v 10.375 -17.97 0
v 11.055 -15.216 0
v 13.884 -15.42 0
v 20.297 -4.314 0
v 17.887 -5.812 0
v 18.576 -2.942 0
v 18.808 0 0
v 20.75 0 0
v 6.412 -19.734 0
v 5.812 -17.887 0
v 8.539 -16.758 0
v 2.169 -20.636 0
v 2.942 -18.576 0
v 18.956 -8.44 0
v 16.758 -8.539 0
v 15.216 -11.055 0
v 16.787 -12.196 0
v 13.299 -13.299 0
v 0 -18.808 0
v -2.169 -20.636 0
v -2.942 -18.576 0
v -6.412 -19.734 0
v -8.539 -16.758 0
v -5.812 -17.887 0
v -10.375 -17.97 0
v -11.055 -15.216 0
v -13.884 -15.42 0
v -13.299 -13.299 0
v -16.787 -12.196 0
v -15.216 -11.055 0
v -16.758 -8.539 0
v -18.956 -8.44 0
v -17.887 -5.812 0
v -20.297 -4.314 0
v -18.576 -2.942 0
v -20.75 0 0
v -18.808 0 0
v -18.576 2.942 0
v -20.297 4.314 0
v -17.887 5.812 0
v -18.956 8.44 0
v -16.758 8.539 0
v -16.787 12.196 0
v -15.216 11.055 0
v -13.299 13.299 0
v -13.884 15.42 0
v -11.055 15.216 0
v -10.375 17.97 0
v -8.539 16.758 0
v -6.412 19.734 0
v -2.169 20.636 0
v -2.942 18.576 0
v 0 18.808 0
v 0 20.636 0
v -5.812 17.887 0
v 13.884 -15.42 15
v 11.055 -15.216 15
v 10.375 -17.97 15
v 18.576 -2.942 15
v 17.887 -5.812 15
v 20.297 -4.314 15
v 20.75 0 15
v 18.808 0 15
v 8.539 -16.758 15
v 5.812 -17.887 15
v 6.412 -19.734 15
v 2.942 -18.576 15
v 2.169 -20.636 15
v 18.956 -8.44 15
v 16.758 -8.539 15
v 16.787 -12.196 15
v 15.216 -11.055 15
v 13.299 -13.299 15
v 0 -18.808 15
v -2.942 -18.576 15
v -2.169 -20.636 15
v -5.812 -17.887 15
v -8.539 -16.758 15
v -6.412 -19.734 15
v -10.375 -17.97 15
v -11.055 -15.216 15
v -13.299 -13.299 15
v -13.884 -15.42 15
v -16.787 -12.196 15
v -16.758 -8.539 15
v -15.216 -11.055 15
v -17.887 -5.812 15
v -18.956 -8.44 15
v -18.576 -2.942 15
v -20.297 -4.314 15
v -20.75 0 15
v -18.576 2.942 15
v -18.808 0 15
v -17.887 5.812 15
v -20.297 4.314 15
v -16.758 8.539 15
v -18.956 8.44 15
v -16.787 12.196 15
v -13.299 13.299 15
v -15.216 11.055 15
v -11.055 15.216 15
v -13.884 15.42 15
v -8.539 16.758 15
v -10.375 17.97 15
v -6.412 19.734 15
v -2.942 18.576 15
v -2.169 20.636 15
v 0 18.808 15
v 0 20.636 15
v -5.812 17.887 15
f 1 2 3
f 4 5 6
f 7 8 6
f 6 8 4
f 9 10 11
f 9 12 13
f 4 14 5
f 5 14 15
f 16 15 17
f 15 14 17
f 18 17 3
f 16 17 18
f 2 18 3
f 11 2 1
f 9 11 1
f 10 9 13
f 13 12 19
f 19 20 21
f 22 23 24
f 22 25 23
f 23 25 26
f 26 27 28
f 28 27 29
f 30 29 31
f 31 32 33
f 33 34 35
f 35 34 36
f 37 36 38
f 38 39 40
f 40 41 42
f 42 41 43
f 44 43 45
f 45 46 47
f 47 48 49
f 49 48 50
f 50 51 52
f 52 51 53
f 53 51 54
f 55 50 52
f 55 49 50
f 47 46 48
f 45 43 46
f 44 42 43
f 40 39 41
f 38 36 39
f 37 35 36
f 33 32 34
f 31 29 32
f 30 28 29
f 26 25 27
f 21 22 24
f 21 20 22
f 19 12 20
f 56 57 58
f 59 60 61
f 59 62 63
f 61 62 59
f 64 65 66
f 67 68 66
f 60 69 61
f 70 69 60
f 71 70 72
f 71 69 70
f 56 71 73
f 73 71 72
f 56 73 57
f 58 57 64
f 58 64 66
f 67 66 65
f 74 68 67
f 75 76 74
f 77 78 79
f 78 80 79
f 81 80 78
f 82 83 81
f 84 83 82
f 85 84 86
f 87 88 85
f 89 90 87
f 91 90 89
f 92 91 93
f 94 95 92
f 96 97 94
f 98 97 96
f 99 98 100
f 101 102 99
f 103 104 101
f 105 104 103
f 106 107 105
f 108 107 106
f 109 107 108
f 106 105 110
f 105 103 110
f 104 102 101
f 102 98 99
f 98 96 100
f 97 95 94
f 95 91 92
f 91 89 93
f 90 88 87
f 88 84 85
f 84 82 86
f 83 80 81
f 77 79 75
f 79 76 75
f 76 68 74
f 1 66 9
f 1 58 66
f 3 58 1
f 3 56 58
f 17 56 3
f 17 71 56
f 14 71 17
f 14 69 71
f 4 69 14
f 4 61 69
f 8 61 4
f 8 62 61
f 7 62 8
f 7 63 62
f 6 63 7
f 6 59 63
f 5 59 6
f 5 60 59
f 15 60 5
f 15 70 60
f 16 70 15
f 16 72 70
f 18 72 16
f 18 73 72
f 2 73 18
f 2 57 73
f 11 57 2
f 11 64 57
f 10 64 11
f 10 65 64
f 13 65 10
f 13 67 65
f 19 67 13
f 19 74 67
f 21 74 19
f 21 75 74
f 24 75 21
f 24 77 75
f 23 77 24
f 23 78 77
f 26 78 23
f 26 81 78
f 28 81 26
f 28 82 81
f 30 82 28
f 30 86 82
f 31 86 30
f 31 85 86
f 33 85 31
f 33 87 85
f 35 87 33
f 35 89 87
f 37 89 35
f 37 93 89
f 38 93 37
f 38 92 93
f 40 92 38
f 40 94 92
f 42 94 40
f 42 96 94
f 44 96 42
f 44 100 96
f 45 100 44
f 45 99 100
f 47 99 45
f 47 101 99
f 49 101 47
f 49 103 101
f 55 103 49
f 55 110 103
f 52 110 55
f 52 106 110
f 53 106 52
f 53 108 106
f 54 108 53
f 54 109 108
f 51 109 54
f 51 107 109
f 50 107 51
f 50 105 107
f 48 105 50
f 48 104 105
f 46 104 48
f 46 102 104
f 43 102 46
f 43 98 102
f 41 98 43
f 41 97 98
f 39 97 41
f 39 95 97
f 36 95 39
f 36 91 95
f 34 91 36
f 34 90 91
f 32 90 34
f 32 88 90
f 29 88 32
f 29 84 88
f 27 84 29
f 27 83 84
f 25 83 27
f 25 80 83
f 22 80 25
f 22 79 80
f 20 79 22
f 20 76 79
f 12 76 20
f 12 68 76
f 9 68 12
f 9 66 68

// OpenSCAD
r = 37.5/2;
thickness = 2;

module outline() difference() {
    circle(r=r+thickness);
    circle(r=r/cos(180/40), $fn=40);
    square(2*r);
}

linear_extrude(15) outline();
